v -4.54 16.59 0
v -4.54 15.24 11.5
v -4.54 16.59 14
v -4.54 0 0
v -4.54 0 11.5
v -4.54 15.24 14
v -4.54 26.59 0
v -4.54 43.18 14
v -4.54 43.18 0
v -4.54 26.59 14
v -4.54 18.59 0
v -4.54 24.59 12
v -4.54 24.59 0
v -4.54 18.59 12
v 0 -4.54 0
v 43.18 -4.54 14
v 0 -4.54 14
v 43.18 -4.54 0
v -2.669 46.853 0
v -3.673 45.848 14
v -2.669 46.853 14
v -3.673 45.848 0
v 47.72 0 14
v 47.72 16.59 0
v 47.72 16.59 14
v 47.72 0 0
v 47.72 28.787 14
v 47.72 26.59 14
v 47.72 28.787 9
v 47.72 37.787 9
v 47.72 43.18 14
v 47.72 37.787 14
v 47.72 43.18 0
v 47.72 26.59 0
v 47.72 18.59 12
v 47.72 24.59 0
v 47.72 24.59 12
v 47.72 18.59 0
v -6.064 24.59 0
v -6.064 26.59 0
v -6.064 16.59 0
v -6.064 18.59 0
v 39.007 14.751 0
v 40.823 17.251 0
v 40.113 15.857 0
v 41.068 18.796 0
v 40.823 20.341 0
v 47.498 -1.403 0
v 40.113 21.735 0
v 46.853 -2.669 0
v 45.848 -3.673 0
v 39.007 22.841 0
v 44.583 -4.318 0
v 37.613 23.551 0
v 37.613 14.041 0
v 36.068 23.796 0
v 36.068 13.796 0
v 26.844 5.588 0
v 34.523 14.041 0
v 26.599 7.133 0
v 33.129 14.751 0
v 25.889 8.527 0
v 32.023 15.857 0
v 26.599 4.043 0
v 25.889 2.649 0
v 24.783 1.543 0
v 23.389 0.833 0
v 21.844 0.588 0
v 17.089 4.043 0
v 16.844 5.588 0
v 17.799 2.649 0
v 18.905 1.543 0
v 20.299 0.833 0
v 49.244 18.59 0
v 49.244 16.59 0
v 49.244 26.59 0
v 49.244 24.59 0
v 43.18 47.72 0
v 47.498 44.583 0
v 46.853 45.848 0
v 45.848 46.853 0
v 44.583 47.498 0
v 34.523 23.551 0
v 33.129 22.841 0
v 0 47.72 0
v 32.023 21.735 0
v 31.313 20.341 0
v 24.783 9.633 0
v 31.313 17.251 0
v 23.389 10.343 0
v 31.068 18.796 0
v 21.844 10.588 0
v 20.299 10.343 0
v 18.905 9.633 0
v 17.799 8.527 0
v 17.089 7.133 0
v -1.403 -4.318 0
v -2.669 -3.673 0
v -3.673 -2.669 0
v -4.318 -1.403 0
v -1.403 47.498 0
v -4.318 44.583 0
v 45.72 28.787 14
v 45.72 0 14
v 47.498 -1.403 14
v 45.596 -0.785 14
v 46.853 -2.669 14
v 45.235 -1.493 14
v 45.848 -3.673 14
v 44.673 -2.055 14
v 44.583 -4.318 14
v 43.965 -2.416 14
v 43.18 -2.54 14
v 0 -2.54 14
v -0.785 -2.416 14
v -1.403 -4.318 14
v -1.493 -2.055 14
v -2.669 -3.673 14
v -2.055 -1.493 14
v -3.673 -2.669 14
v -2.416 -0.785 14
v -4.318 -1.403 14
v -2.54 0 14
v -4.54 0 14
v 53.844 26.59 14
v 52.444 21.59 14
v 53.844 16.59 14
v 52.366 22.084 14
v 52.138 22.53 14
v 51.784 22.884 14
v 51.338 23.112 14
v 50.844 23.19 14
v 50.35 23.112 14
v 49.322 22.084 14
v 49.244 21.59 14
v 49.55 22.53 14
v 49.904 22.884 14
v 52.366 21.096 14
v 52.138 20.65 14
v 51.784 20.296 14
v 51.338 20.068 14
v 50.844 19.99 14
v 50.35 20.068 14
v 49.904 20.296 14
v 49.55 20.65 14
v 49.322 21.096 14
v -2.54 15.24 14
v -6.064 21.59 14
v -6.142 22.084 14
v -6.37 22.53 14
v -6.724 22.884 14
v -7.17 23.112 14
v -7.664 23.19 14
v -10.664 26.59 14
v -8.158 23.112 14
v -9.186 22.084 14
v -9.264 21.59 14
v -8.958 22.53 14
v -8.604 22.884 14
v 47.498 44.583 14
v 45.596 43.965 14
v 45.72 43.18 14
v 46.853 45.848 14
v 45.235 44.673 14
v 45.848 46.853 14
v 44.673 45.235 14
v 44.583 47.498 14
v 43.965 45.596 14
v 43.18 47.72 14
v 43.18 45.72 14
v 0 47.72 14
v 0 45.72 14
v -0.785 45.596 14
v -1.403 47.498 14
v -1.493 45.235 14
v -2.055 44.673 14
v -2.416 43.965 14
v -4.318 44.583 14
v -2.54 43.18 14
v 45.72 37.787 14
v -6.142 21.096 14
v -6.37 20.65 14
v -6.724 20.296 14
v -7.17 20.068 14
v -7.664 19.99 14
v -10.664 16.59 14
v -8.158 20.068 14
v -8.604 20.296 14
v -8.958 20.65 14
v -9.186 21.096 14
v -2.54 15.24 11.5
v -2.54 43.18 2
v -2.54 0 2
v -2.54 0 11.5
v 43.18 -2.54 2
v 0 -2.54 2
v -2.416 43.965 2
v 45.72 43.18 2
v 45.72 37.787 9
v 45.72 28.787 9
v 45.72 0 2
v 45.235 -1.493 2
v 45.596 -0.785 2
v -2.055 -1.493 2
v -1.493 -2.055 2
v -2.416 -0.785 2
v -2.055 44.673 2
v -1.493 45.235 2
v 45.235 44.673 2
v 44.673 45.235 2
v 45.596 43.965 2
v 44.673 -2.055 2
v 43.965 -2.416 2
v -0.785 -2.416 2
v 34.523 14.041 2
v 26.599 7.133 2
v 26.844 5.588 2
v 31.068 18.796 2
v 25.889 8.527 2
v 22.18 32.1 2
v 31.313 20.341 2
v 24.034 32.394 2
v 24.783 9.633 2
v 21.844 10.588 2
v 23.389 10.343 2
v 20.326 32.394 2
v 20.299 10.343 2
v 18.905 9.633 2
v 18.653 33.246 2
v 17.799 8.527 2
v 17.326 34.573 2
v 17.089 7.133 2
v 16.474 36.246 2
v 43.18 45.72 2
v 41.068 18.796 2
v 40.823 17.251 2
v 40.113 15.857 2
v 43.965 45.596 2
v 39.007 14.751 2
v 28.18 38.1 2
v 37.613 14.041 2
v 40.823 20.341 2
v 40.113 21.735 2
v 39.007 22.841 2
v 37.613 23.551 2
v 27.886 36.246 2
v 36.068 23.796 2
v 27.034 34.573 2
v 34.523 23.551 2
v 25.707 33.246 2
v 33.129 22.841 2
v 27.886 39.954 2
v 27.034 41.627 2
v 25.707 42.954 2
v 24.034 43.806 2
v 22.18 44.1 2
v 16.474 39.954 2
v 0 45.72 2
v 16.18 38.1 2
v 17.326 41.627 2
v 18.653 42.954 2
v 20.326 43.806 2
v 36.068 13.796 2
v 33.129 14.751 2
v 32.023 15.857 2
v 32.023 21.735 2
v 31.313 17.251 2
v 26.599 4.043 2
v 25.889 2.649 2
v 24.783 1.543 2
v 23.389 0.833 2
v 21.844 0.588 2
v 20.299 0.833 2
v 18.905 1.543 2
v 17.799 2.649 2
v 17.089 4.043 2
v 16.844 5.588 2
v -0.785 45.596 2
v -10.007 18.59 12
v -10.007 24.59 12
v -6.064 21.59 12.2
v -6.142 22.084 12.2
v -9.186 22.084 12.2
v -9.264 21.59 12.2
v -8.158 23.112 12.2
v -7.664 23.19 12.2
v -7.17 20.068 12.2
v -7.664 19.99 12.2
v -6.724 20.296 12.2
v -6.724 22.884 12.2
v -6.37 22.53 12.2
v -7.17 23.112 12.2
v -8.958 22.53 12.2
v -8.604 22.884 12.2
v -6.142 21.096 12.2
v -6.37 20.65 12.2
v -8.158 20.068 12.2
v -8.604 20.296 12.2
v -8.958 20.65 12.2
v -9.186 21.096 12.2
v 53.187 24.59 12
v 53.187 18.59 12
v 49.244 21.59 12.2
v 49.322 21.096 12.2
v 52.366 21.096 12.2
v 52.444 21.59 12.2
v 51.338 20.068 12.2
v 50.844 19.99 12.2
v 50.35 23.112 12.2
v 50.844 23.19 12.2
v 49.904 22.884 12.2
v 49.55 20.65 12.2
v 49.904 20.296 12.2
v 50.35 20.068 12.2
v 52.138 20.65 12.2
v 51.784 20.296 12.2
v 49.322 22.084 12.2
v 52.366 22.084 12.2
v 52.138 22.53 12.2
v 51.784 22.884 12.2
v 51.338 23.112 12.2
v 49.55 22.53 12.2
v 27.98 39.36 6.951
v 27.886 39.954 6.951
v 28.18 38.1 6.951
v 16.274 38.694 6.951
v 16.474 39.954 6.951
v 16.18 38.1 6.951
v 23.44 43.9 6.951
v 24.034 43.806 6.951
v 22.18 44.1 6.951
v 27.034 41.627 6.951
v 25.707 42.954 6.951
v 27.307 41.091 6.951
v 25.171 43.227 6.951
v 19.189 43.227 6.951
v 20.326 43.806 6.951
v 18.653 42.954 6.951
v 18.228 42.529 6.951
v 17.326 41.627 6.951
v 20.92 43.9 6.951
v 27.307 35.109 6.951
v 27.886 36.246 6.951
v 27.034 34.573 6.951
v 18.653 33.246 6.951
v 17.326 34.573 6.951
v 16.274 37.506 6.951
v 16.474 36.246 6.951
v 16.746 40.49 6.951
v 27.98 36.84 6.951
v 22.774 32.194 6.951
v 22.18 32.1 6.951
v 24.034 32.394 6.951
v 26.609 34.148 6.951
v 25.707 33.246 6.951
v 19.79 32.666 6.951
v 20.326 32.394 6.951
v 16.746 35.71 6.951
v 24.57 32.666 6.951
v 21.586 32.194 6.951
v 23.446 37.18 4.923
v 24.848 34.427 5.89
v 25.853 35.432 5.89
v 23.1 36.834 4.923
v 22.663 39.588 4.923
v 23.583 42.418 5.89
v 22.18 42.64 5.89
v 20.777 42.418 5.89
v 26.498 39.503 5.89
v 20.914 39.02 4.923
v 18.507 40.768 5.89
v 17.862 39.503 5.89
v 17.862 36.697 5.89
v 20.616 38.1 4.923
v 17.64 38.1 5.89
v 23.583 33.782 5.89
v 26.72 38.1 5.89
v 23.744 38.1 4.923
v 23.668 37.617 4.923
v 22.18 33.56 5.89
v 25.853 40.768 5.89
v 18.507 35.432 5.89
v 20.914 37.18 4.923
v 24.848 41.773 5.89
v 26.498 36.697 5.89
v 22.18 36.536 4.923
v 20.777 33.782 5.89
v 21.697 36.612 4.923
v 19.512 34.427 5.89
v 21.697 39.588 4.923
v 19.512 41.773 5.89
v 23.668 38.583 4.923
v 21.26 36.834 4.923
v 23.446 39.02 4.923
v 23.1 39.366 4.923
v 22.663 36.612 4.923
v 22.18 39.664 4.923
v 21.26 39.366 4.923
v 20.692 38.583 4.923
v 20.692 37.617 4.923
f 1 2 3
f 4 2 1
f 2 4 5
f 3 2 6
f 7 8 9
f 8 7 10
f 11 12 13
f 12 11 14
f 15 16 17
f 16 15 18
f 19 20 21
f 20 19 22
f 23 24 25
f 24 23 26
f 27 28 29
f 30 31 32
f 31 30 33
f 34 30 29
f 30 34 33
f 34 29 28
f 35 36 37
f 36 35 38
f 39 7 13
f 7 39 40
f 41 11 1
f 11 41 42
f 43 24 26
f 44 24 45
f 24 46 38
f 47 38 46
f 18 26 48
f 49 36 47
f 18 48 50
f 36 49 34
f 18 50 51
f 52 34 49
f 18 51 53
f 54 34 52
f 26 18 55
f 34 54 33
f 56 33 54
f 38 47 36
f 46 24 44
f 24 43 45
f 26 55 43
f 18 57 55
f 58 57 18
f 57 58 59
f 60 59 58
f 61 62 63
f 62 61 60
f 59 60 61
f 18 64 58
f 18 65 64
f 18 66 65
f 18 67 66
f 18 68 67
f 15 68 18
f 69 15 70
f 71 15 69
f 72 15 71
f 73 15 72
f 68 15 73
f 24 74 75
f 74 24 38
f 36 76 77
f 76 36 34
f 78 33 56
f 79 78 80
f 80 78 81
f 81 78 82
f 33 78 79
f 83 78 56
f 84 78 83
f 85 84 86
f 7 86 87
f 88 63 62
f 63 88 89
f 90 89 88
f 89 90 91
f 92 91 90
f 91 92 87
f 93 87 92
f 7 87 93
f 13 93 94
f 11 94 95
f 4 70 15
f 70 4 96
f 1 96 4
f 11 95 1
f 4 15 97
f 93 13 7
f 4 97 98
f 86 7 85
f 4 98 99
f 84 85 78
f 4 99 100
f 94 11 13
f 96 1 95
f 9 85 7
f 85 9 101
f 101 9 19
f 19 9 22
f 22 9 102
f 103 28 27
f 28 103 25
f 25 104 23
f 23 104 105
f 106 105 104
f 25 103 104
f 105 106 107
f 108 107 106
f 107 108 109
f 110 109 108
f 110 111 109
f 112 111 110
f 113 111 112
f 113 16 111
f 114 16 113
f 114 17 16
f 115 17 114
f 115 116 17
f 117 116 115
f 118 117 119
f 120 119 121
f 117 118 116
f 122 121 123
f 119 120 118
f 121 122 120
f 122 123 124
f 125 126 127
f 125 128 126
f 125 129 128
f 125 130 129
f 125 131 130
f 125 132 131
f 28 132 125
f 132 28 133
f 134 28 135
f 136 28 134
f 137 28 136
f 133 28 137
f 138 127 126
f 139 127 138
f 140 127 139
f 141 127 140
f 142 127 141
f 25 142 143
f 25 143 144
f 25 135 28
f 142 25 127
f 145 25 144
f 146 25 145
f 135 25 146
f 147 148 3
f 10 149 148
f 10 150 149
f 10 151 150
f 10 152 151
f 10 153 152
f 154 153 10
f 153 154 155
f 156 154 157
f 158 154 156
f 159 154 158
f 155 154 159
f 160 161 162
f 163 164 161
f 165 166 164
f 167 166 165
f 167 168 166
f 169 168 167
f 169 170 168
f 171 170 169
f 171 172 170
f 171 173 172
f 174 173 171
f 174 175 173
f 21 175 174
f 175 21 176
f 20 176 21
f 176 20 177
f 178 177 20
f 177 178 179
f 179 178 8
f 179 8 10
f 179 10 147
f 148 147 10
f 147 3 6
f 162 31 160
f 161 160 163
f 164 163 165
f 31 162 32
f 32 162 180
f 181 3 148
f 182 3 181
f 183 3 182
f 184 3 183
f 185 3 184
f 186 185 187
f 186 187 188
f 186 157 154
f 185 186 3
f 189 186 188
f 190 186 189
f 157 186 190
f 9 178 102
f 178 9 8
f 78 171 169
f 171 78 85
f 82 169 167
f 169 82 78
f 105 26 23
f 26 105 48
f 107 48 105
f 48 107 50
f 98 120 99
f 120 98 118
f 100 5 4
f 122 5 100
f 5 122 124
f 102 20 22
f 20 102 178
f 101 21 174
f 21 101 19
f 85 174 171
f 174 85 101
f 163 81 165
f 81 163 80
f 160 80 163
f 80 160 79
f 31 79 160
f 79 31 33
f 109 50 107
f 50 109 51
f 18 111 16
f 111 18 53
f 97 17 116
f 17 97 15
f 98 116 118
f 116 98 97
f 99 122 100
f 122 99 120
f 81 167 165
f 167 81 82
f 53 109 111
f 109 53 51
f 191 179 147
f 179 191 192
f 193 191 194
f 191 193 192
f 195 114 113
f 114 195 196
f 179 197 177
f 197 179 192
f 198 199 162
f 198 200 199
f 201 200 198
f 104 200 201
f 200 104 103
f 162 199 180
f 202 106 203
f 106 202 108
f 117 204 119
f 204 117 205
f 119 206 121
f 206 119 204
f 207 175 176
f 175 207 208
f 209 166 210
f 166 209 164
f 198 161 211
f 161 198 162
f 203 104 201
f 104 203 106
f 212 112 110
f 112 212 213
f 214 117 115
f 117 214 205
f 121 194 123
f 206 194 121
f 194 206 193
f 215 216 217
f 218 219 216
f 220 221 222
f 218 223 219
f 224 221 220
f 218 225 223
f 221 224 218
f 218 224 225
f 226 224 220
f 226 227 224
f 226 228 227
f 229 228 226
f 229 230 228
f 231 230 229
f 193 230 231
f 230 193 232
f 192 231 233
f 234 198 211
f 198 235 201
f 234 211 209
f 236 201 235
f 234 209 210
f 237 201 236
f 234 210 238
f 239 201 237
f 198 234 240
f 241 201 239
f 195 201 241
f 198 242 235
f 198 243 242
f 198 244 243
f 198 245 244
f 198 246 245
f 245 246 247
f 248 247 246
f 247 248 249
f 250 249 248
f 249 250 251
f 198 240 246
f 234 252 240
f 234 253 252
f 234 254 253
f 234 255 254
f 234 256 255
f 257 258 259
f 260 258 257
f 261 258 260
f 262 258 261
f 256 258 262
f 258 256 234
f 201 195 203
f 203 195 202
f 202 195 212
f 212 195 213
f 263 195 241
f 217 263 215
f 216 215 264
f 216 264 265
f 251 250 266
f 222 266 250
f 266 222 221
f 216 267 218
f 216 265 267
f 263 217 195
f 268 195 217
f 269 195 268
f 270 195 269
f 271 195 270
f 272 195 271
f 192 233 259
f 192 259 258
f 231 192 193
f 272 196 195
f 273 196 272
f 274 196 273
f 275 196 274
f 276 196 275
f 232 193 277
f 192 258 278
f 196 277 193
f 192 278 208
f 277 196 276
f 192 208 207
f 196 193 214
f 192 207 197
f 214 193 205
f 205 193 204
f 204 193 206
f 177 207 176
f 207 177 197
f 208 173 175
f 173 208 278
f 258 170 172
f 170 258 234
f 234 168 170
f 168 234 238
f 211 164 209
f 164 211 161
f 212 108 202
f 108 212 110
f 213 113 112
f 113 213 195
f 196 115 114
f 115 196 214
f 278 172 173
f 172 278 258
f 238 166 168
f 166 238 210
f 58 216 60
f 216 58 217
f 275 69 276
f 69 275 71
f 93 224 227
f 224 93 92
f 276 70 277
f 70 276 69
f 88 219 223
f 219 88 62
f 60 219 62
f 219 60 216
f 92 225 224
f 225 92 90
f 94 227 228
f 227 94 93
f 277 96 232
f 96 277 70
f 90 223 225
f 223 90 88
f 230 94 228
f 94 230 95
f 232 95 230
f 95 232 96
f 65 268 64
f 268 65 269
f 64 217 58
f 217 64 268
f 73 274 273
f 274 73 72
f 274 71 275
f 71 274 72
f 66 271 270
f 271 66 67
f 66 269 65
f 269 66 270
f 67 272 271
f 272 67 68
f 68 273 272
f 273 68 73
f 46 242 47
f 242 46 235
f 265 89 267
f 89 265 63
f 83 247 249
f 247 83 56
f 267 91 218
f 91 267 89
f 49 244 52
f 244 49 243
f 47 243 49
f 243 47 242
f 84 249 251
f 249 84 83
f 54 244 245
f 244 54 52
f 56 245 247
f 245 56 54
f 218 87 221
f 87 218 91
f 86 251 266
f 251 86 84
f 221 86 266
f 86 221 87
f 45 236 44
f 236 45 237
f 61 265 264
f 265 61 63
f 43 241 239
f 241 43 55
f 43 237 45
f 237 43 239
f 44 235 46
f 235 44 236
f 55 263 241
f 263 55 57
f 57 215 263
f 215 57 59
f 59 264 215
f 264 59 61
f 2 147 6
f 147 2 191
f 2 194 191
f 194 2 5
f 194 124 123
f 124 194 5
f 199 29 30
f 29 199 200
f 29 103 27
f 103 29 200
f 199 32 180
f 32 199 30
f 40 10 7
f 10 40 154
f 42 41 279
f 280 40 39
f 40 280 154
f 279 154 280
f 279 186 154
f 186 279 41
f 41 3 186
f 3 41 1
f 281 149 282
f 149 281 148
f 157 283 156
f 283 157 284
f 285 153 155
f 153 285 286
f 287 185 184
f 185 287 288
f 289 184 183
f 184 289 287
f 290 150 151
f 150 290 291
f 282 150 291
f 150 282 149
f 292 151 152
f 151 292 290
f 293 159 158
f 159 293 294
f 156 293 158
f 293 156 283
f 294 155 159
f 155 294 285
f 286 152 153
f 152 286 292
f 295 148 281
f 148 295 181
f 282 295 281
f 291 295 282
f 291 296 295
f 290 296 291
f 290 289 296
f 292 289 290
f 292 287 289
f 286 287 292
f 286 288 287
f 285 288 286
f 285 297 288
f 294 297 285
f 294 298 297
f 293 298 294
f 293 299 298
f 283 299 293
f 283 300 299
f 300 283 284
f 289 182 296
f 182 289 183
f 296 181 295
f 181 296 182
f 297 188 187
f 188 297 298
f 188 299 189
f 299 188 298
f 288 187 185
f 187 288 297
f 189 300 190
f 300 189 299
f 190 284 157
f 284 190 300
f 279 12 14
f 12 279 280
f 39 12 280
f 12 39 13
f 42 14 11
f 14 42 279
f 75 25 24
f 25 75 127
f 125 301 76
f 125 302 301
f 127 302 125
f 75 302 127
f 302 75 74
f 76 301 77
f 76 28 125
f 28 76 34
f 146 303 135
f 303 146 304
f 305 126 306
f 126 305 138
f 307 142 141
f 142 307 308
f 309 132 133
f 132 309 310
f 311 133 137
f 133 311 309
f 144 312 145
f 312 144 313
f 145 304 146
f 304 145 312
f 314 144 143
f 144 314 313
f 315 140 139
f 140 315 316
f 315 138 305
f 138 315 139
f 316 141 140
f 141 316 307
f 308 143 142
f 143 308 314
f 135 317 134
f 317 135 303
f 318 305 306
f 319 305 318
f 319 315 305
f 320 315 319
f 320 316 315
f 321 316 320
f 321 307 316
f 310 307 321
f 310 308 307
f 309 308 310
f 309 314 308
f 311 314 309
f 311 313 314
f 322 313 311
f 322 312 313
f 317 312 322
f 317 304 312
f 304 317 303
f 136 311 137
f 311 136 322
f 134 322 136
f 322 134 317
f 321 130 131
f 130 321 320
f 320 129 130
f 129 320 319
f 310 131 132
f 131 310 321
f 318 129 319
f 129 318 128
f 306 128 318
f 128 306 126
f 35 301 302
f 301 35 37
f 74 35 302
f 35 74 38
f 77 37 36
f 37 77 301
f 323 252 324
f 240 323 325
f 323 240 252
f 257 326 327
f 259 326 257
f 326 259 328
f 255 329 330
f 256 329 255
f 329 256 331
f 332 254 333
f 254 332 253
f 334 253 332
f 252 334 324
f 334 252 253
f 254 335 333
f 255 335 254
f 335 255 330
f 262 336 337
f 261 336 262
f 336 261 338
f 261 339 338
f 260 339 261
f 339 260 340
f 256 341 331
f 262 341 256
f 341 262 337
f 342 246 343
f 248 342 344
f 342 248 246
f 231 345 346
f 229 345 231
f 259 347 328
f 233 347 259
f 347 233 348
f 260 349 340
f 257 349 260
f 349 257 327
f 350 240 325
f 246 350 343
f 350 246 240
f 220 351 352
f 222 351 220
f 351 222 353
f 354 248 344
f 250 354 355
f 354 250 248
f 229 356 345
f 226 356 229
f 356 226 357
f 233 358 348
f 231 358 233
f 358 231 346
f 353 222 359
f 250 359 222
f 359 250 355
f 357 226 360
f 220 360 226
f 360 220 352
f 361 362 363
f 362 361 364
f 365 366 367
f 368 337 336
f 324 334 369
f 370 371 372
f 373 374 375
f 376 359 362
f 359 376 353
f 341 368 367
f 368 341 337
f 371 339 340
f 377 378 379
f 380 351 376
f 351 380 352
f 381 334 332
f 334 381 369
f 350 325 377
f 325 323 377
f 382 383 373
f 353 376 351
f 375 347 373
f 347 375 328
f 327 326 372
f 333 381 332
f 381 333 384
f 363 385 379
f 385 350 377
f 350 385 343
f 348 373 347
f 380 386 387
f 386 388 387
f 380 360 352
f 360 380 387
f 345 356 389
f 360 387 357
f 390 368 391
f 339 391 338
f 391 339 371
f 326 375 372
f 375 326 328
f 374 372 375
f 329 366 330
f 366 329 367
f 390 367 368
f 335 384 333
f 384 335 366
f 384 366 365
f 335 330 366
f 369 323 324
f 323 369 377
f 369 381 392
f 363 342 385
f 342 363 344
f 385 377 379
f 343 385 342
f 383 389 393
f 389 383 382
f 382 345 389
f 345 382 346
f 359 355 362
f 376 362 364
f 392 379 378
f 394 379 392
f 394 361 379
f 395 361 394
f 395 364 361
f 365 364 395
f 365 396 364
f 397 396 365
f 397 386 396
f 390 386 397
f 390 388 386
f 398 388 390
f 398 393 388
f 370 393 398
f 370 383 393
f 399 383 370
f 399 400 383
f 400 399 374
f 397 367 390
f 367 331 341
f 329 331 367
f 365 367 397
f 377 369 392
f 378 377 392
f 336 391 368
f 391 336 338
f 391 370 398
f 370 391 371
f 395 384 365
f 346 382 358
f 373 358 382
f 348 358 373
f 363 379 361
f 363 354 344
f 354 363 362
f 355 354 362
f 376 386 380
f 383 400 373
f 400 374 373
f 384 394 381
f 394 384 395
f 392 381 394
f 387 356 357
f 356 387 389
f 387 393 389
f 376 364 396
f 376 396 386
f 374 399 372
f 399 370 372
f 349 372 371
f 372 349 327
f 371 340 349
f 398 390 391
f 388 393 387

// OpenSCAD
//versión con lente na tapa, a ver...
lensRadius = 10;
side = 43.180;
roundCorner = 2.54;
screwHoleRadius = 1.5;
throughHoleRadius = 1.6;
wallThickness = 2;
baseHeight= 14;
$fn = 20;
buttonHoleRadius = 5;
//should work with 0.2 more than the pushbutton total height
pushButtonHeight = 4.5;
xPosButtonHoleStart = 21.336;
yPosButtonHoleStart = 5.588;

xPosButtonHoleReset = 7.112;
yPosButtonHoleReset = 18.796;
connectorHole = 15.240;

//tapa con lente
lid();
difference(){
translate ([side-21,38.1,0]) cylinder(r= 6, h= 10);
translate ([side-21,38.1,wallThickness+lensRadius+2.8]) sphere (r=lensRadius);
}
////tapa con furado para tunel de luz
//difference(){
//lid();
//translate ([side-21,38.1,-1]) cylinder(r= 6, h= 10);
//}
//tunel de luz
//difference(){
//union(){
//cylinder(r=6.9,h=baseHeight-wallThickness);
//cylinder(r=5.9,h=30);
//}
//cylinder(r=3.1,h=11);
//}
//medidor
//translate ([side-24,33.1,0]) color ("red")  cube ([10,13,5]);

//base
module base(){
difference(){
extBox();
translate([0,0,wallThickness])pcbHole();
//cable hole
translate ([11,side,baseHeight-2.5]) cube([3,6,3]);
}
pcbStands();
translate([-roundCorner*1.6,side/2,baseHeight/2])baseMountStands();
translate([side+roundCorner*1.6,side/2,baseHeight/2])rotate([0,0,180]) baseMountStands();
}

//lid
module lid(){
    difference(){
        extBox();
        translate([0,0,wallThickness])pcbHole();
        //hole Button start
        translate([side-xPosButtonHoleStart,yPosButtonHoleStart,-1]) cylinder(r=buttonHoleRadius,h=4);
        //hole Button reset
        translate([side-xPosButtonHoleReset,yPosButtonHoleReset,-1]) cylinder(r=buttonHoleRadius,h=4);
        //hole connector
        translate ([-6,0,baseHeight-2.5]) cube([6,connectorHole,3]);
            //switch Hole
        translate ([side,side/1.5,baseHeight-5]) cube([6,9,6]);
    }
    //baseMount Stands
translate([-roundCorner*1.6,side/2,baseHeight/2])baseMountStands();
translate([side+roundCorner*1.6,side/2,baseHeight/2])rotate([0,0,180]) baseMountStands();

}


//exterior box
module extBox(){
hull(){
cylinder (r=roundCorner+wallThickness, h = baseHeight);
translate ([side,0,0]) cylinder (r=roundCorner+wallThickness, h = baseHeight);
translate ([side,side,0]) cylinder (r=roundCorner+wallThickness, h = baseHeight);
translate ([0,side,0]) cylinder (r=roundCorner+wallThickness, h = baseHeight);
}
}

//pcb hole
module pcbHole(){
hull(){
cylinder (r=roundCorner, h = 16);
translate ([side,0,0]) cylinder (r=roundCorner, h = 16);
translate ([side,side,0]) cylinder (r=roundCorner, h = 16);
translate ([0,side,0]) cylinder (r=roundCorner, h = 16);
}
}

//pcb stands
module pcbStands(){
difference(){
translate([2.54,2.54,0])cylinder (r=roundCorner+wallThickness, h = baseHeight-1.7);
    translate([2.54,2.54,wallThickness]) cylinder (r=screwHoleRadius, h = baseHeight);
}
translate ([side,0,0]) cylinder (r=roundCorner+wallThickness, h = baseHeight-1.7);
difference(){
translate ([side-2.54,side-2.54,0]) cylinder (r=roundCorner+wallThickness, h = baseHeight-1.7);
translate([side-2.54,side-2.54,wallThickness]) cylinder (r=screwHoleRadius, h = baseHeight);
}
translate ([0,side,0]) cylinder (r=roundCorner+wallThickness, h = baseHeight-1.7);
}
//base mount stands
module baseMountStands(){
difference(){
linear_extrude(height = baseHeight, center = true, convexity = 10, scale=[3.3,1])
translate ([-1,0,0]) square([2,10],true);
translate ([-3.6,0,baseHeight-8.8]) cylinder(r=throughHoleRadius,h=baseHeight);
   translate ([-3,0,-2]) cube([6,6,baseHeight],true);
}
}
